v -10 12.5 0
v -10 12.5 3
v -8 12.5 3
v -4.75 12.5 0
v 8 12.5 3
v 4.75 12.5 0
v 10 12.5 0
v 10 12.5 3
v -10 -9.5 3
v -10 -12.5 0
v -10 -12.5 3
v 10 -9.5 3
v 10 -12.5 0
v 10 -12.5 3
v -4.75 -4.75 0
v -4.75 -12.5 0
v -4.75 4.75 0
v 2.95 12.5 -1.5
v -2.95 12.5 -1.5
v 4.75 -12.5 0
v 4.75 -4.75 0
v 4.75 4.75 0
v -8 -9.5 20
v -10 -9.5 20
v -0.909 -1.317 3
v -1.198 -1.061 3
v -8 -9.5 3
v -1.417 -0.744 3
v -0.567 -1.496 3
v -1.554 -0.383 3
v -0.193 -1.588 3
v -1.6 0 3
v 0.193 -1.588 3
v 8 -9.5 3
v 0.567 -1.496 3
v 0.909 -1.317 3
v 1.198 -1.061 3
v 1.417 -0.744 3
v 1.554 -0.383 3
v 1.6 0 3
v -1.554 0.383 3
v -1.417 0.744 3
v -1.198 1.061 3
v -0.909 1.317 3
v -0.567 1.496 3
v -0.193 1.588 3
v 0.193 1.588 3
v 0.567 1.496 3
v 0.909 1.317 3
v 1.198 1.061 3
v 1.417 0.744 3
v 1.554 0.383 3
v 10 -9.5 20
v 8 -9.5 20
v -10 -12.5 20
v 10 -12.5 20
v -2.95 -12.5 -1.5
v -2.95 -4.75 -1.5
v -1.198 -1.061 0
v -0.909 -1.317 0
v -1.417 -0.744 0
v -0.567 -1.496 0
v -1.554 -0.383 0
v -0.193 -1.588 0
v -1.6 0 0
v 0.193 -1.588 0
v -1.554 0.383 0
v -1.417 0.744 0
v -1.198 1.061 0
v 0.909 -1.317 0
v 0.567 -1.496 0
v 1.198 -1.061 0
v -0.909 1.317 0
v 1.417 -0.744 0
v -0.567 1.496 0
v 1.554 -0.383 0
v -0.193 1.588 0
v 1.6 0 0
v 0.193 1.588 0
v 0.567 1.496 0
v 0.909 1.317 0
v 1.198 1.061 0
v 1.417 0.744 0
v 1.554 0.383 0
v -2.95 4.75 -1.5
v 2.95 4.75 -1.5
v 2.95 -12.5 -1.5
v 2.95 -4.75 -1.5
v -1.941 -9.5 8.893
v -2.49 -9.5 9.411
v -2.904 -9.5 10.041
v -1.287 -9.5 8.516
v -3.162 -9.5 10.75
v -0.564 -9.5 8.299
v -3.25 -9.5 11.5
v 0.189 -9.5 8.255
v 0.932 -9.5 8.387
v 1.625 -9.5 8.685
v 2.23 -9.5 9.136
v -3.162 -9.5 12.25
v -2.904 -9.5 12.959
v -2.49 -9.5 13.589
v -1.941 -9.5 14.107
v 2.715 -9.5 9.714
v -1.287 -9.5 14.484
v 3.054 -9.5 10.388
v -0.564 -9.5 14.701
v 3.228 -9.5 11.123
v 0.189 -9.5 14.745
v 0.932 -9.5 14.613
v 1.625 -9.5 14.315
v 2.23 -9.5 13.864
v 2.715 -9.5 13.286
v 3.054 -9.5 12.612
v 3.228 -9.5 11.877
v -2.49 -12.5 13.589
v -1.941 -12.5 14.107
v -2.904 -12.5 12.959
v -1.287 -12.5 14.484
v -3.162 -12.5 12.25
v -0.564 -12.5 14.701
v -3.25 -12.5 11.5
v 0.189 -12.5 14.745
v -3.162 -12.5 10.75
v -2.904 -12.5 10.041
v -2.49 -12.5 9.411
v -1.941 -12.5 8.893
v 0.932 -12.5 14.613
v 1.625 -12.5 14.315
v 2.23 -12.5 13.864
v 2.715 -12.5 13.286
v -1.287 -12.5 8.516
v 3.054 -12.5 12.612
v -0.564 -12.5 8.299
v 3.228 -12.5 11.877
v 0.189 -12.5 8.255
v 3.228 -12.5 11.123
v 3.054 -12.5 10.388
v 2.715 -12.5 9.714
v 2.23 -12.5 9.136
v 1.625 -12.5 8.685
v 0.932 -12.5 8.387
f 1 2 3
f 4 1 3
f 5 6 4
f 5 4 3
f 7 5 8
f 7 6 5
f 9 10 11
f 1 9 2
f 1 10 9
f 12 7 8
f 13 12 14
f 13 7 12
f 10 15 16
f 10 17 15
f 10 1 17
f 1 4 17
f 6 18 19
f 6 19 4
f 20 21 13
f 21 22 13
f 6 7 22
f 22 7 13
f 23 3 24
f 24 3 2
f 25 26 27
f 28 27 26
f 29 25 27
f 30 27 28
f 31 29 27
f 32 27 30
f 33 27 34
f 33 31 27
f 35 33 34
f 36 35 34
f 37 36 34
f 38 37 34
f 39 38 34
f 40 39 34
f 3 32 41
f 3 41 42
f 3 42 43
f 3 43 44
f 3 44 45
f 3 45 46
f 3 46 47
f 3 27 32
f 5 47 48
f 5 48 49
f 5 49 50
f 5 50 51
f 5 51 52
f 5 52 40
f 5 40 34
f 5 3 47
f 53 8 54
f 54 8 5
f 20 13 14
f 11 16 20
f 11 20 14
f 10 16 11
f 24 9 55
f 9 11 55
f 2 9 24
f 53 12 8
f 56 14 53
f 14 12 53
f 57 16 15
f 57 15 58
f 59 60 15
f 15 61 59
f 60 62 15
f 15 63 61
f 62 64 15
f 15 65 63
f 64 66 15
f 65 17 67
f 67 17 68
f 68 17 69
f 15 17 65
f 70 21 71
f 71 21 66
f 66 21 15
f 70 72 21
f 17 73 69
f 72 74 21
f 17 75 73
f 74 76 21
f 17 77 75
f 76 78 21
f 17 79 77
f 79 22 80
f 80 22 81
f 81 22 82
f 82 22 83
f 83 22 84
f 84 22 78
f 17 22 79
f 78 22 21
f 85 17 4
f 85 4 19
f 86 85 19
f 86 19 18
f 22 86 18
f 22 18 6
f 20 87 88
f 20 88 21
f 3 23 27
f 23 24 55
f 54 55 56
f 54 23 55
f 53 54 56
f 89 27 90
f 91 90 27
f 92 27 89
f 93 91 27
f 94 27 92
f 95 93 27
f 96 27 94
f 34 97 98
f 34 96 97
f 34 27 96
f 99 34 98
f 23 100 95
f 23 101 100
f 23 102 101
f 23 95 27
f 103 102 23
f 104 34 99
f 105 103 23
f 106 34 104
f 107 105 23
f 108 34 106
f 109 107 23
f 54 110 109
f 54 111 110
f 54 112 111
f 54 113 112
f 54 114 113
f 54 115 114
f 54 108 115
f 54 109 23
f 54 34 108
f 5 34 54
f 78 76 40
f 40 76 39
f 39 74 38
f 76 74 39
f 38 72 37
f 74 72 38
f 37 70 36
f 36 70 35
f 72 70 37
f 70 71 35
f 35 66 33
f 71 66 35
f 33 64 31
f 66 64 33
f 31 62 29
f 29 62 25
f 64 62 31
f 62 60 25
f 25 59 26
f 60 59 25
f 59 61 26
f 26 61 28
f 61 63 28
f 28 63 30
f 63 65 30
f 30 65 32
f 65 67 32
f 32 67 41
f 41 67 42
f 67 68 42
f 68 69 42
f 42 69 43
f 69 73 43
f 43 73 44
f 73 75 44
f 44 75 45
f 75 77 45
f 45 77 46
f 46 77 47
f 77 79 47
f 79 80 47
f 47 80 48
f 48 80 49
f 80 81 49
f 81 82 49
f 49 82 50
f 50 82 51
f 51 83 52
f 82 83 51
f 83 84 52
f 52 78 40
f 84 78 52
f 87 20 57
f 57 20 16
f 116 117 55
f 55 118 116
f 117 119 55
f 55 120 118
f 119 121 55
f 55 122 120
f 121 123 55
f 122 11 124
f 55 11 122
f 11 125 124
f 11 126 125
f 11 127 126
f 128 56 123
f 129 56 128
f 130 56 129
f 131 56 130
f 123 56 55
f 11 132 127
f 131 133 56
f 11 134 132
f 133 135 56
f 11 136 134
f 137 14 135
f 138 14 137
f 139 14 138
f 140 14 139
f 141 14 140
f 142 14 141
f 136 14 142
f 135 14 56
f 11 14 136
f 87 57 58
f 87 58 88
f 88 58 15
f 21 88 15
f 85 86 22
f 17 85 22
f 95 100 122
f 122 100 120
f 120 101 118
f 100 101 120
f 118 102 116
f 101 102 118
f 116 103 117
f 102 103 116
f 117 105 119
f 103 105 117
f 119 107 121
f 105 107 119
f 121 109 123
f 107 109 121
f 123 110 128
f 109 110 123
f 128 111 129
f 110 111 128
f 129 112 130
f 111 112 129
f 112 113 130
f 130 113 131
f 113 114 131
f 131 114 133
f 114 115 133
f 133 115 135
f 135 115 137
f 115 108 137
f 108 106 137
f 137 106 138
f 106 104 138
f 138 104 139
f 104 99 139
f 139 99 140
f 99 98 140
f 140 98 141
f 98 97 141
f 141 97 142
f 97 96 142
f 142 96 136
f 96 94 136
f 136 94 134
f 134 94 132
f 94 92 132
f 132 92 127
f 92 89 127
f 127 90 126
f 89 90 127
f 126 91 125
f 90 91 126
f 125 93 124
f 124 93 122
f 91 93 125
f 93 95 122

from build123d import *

# Parameters (mm, degrees)
SKETCH_W        = 20
SKETCH_H        = 25
PAD_DEPTH       = 3
SKETCH001_W     = 20
SKETCH001_H     = 3
PAD001_DEPTH    = 17
PAD002_DEPTH    = 25
SKETCH003_R     = 1.6
POCKET_DEPTH    = 21.501
SKETCH004_W     = 9.5
SKETCH004_H     = 9.5
POCKET001_DEPTH = 1.5
PAD003_DEPTH    = 20
SKETCH006_W     = 16
SKETCH006_H     = 17
POCKET002_DEPTH = 22
SKETCH007_R     = 3.25
POCKET003_DEPTH = 3.001


with BuildPart() as part:
    # Sketch → Pad (new body)
    with BuildSketch(Plane.XY):
        Rectangle(SKETCH_W, SKETCH_H)
    extrude(amount=PAD_DEPTH)

    # Sketch001 (on Face6 of Pad) → Pad001 (join)
    with BuildSketch(Plane.XY.offset(3)):
        with Locations((0, -11)):
            Rectangle(SKETCH001_W, SKETCH001_H)
    extrude(amount=PAD001_DEPTH)

    # Sketch002 (on Face6 of Pad001) → Pad002 (join)
    with BuildSketch(Plane.XZ.offset(12.5)):
        Polygon((4.75, 0), (-4.75, 0), (-2.95, -1.5), (2.95, -1.5), align=None)
    extrude(amount=-PAD002_DEPTH)

    # Sketch003 (on Face12 of Pad002) → Pocket (cut, through all)
    with BuildSketch(Plane(origin=(0, 0, -1.5), x_dir=(1, 0, 0), z_dir=(0, 0, -1))):
        Circle(SKETCH003_R)
    extrude(amount=-POCKET_DEPTH, mode=Mode.SUBTRACT)

    # Sketch004 (on Face12 of Pocket) → Pocket001 (cut)
    with BuildSketch(Plane(origin=(0, 0, -1.5), x_dir=(1, 0, 0), z_dir=(0, 0, -1))):
        Rectangle(SKETCH004_W, SKETCH004_H)
    extrude(amount=-POCKET001_DEPTH, mode=Mode.SUBTRACT)

    # Sketch005 (on Face3 of Pocket001) → Pad003 (join)
    with BuildSketch(Plane.YZ.offset(10)):
        Polygon((-9.5, 3), (-9.5, 20), (12.5, 3), align=None)
    extrude(amount=-PAD003_DEPTH)

    # Sketch006 (on Face1 of Pad003) → Pocket002 (cut)
    with BuildSketch(Plane(origin=(0, 12.5, 0), x_dir=(-1, 0, 0), z_dir=(0, 1, 0))):
        with Locations((0, 11.5)):
            Rectangle(SKETCH006_W, SKETCH006_H)
    extrude(amount=-POCKET002_DEPTH, mode=Mode.SUBTRACT)

    # Sketch007 (on Face23 of Pocket002) → Pocket003 (cut, through all)
    with BuildSketch(Plane(origin=(0, -9.5, 0), x_dir=(-1, 0, 0), z_dir=(0, 1, 0))):
        with Locations((0, 11.5)):
            Circle(SKETCH007_R)
    extrude(amount=-POCKET003_DEPTH, mode=Mode.SUBTRACT)


solid = part.part
